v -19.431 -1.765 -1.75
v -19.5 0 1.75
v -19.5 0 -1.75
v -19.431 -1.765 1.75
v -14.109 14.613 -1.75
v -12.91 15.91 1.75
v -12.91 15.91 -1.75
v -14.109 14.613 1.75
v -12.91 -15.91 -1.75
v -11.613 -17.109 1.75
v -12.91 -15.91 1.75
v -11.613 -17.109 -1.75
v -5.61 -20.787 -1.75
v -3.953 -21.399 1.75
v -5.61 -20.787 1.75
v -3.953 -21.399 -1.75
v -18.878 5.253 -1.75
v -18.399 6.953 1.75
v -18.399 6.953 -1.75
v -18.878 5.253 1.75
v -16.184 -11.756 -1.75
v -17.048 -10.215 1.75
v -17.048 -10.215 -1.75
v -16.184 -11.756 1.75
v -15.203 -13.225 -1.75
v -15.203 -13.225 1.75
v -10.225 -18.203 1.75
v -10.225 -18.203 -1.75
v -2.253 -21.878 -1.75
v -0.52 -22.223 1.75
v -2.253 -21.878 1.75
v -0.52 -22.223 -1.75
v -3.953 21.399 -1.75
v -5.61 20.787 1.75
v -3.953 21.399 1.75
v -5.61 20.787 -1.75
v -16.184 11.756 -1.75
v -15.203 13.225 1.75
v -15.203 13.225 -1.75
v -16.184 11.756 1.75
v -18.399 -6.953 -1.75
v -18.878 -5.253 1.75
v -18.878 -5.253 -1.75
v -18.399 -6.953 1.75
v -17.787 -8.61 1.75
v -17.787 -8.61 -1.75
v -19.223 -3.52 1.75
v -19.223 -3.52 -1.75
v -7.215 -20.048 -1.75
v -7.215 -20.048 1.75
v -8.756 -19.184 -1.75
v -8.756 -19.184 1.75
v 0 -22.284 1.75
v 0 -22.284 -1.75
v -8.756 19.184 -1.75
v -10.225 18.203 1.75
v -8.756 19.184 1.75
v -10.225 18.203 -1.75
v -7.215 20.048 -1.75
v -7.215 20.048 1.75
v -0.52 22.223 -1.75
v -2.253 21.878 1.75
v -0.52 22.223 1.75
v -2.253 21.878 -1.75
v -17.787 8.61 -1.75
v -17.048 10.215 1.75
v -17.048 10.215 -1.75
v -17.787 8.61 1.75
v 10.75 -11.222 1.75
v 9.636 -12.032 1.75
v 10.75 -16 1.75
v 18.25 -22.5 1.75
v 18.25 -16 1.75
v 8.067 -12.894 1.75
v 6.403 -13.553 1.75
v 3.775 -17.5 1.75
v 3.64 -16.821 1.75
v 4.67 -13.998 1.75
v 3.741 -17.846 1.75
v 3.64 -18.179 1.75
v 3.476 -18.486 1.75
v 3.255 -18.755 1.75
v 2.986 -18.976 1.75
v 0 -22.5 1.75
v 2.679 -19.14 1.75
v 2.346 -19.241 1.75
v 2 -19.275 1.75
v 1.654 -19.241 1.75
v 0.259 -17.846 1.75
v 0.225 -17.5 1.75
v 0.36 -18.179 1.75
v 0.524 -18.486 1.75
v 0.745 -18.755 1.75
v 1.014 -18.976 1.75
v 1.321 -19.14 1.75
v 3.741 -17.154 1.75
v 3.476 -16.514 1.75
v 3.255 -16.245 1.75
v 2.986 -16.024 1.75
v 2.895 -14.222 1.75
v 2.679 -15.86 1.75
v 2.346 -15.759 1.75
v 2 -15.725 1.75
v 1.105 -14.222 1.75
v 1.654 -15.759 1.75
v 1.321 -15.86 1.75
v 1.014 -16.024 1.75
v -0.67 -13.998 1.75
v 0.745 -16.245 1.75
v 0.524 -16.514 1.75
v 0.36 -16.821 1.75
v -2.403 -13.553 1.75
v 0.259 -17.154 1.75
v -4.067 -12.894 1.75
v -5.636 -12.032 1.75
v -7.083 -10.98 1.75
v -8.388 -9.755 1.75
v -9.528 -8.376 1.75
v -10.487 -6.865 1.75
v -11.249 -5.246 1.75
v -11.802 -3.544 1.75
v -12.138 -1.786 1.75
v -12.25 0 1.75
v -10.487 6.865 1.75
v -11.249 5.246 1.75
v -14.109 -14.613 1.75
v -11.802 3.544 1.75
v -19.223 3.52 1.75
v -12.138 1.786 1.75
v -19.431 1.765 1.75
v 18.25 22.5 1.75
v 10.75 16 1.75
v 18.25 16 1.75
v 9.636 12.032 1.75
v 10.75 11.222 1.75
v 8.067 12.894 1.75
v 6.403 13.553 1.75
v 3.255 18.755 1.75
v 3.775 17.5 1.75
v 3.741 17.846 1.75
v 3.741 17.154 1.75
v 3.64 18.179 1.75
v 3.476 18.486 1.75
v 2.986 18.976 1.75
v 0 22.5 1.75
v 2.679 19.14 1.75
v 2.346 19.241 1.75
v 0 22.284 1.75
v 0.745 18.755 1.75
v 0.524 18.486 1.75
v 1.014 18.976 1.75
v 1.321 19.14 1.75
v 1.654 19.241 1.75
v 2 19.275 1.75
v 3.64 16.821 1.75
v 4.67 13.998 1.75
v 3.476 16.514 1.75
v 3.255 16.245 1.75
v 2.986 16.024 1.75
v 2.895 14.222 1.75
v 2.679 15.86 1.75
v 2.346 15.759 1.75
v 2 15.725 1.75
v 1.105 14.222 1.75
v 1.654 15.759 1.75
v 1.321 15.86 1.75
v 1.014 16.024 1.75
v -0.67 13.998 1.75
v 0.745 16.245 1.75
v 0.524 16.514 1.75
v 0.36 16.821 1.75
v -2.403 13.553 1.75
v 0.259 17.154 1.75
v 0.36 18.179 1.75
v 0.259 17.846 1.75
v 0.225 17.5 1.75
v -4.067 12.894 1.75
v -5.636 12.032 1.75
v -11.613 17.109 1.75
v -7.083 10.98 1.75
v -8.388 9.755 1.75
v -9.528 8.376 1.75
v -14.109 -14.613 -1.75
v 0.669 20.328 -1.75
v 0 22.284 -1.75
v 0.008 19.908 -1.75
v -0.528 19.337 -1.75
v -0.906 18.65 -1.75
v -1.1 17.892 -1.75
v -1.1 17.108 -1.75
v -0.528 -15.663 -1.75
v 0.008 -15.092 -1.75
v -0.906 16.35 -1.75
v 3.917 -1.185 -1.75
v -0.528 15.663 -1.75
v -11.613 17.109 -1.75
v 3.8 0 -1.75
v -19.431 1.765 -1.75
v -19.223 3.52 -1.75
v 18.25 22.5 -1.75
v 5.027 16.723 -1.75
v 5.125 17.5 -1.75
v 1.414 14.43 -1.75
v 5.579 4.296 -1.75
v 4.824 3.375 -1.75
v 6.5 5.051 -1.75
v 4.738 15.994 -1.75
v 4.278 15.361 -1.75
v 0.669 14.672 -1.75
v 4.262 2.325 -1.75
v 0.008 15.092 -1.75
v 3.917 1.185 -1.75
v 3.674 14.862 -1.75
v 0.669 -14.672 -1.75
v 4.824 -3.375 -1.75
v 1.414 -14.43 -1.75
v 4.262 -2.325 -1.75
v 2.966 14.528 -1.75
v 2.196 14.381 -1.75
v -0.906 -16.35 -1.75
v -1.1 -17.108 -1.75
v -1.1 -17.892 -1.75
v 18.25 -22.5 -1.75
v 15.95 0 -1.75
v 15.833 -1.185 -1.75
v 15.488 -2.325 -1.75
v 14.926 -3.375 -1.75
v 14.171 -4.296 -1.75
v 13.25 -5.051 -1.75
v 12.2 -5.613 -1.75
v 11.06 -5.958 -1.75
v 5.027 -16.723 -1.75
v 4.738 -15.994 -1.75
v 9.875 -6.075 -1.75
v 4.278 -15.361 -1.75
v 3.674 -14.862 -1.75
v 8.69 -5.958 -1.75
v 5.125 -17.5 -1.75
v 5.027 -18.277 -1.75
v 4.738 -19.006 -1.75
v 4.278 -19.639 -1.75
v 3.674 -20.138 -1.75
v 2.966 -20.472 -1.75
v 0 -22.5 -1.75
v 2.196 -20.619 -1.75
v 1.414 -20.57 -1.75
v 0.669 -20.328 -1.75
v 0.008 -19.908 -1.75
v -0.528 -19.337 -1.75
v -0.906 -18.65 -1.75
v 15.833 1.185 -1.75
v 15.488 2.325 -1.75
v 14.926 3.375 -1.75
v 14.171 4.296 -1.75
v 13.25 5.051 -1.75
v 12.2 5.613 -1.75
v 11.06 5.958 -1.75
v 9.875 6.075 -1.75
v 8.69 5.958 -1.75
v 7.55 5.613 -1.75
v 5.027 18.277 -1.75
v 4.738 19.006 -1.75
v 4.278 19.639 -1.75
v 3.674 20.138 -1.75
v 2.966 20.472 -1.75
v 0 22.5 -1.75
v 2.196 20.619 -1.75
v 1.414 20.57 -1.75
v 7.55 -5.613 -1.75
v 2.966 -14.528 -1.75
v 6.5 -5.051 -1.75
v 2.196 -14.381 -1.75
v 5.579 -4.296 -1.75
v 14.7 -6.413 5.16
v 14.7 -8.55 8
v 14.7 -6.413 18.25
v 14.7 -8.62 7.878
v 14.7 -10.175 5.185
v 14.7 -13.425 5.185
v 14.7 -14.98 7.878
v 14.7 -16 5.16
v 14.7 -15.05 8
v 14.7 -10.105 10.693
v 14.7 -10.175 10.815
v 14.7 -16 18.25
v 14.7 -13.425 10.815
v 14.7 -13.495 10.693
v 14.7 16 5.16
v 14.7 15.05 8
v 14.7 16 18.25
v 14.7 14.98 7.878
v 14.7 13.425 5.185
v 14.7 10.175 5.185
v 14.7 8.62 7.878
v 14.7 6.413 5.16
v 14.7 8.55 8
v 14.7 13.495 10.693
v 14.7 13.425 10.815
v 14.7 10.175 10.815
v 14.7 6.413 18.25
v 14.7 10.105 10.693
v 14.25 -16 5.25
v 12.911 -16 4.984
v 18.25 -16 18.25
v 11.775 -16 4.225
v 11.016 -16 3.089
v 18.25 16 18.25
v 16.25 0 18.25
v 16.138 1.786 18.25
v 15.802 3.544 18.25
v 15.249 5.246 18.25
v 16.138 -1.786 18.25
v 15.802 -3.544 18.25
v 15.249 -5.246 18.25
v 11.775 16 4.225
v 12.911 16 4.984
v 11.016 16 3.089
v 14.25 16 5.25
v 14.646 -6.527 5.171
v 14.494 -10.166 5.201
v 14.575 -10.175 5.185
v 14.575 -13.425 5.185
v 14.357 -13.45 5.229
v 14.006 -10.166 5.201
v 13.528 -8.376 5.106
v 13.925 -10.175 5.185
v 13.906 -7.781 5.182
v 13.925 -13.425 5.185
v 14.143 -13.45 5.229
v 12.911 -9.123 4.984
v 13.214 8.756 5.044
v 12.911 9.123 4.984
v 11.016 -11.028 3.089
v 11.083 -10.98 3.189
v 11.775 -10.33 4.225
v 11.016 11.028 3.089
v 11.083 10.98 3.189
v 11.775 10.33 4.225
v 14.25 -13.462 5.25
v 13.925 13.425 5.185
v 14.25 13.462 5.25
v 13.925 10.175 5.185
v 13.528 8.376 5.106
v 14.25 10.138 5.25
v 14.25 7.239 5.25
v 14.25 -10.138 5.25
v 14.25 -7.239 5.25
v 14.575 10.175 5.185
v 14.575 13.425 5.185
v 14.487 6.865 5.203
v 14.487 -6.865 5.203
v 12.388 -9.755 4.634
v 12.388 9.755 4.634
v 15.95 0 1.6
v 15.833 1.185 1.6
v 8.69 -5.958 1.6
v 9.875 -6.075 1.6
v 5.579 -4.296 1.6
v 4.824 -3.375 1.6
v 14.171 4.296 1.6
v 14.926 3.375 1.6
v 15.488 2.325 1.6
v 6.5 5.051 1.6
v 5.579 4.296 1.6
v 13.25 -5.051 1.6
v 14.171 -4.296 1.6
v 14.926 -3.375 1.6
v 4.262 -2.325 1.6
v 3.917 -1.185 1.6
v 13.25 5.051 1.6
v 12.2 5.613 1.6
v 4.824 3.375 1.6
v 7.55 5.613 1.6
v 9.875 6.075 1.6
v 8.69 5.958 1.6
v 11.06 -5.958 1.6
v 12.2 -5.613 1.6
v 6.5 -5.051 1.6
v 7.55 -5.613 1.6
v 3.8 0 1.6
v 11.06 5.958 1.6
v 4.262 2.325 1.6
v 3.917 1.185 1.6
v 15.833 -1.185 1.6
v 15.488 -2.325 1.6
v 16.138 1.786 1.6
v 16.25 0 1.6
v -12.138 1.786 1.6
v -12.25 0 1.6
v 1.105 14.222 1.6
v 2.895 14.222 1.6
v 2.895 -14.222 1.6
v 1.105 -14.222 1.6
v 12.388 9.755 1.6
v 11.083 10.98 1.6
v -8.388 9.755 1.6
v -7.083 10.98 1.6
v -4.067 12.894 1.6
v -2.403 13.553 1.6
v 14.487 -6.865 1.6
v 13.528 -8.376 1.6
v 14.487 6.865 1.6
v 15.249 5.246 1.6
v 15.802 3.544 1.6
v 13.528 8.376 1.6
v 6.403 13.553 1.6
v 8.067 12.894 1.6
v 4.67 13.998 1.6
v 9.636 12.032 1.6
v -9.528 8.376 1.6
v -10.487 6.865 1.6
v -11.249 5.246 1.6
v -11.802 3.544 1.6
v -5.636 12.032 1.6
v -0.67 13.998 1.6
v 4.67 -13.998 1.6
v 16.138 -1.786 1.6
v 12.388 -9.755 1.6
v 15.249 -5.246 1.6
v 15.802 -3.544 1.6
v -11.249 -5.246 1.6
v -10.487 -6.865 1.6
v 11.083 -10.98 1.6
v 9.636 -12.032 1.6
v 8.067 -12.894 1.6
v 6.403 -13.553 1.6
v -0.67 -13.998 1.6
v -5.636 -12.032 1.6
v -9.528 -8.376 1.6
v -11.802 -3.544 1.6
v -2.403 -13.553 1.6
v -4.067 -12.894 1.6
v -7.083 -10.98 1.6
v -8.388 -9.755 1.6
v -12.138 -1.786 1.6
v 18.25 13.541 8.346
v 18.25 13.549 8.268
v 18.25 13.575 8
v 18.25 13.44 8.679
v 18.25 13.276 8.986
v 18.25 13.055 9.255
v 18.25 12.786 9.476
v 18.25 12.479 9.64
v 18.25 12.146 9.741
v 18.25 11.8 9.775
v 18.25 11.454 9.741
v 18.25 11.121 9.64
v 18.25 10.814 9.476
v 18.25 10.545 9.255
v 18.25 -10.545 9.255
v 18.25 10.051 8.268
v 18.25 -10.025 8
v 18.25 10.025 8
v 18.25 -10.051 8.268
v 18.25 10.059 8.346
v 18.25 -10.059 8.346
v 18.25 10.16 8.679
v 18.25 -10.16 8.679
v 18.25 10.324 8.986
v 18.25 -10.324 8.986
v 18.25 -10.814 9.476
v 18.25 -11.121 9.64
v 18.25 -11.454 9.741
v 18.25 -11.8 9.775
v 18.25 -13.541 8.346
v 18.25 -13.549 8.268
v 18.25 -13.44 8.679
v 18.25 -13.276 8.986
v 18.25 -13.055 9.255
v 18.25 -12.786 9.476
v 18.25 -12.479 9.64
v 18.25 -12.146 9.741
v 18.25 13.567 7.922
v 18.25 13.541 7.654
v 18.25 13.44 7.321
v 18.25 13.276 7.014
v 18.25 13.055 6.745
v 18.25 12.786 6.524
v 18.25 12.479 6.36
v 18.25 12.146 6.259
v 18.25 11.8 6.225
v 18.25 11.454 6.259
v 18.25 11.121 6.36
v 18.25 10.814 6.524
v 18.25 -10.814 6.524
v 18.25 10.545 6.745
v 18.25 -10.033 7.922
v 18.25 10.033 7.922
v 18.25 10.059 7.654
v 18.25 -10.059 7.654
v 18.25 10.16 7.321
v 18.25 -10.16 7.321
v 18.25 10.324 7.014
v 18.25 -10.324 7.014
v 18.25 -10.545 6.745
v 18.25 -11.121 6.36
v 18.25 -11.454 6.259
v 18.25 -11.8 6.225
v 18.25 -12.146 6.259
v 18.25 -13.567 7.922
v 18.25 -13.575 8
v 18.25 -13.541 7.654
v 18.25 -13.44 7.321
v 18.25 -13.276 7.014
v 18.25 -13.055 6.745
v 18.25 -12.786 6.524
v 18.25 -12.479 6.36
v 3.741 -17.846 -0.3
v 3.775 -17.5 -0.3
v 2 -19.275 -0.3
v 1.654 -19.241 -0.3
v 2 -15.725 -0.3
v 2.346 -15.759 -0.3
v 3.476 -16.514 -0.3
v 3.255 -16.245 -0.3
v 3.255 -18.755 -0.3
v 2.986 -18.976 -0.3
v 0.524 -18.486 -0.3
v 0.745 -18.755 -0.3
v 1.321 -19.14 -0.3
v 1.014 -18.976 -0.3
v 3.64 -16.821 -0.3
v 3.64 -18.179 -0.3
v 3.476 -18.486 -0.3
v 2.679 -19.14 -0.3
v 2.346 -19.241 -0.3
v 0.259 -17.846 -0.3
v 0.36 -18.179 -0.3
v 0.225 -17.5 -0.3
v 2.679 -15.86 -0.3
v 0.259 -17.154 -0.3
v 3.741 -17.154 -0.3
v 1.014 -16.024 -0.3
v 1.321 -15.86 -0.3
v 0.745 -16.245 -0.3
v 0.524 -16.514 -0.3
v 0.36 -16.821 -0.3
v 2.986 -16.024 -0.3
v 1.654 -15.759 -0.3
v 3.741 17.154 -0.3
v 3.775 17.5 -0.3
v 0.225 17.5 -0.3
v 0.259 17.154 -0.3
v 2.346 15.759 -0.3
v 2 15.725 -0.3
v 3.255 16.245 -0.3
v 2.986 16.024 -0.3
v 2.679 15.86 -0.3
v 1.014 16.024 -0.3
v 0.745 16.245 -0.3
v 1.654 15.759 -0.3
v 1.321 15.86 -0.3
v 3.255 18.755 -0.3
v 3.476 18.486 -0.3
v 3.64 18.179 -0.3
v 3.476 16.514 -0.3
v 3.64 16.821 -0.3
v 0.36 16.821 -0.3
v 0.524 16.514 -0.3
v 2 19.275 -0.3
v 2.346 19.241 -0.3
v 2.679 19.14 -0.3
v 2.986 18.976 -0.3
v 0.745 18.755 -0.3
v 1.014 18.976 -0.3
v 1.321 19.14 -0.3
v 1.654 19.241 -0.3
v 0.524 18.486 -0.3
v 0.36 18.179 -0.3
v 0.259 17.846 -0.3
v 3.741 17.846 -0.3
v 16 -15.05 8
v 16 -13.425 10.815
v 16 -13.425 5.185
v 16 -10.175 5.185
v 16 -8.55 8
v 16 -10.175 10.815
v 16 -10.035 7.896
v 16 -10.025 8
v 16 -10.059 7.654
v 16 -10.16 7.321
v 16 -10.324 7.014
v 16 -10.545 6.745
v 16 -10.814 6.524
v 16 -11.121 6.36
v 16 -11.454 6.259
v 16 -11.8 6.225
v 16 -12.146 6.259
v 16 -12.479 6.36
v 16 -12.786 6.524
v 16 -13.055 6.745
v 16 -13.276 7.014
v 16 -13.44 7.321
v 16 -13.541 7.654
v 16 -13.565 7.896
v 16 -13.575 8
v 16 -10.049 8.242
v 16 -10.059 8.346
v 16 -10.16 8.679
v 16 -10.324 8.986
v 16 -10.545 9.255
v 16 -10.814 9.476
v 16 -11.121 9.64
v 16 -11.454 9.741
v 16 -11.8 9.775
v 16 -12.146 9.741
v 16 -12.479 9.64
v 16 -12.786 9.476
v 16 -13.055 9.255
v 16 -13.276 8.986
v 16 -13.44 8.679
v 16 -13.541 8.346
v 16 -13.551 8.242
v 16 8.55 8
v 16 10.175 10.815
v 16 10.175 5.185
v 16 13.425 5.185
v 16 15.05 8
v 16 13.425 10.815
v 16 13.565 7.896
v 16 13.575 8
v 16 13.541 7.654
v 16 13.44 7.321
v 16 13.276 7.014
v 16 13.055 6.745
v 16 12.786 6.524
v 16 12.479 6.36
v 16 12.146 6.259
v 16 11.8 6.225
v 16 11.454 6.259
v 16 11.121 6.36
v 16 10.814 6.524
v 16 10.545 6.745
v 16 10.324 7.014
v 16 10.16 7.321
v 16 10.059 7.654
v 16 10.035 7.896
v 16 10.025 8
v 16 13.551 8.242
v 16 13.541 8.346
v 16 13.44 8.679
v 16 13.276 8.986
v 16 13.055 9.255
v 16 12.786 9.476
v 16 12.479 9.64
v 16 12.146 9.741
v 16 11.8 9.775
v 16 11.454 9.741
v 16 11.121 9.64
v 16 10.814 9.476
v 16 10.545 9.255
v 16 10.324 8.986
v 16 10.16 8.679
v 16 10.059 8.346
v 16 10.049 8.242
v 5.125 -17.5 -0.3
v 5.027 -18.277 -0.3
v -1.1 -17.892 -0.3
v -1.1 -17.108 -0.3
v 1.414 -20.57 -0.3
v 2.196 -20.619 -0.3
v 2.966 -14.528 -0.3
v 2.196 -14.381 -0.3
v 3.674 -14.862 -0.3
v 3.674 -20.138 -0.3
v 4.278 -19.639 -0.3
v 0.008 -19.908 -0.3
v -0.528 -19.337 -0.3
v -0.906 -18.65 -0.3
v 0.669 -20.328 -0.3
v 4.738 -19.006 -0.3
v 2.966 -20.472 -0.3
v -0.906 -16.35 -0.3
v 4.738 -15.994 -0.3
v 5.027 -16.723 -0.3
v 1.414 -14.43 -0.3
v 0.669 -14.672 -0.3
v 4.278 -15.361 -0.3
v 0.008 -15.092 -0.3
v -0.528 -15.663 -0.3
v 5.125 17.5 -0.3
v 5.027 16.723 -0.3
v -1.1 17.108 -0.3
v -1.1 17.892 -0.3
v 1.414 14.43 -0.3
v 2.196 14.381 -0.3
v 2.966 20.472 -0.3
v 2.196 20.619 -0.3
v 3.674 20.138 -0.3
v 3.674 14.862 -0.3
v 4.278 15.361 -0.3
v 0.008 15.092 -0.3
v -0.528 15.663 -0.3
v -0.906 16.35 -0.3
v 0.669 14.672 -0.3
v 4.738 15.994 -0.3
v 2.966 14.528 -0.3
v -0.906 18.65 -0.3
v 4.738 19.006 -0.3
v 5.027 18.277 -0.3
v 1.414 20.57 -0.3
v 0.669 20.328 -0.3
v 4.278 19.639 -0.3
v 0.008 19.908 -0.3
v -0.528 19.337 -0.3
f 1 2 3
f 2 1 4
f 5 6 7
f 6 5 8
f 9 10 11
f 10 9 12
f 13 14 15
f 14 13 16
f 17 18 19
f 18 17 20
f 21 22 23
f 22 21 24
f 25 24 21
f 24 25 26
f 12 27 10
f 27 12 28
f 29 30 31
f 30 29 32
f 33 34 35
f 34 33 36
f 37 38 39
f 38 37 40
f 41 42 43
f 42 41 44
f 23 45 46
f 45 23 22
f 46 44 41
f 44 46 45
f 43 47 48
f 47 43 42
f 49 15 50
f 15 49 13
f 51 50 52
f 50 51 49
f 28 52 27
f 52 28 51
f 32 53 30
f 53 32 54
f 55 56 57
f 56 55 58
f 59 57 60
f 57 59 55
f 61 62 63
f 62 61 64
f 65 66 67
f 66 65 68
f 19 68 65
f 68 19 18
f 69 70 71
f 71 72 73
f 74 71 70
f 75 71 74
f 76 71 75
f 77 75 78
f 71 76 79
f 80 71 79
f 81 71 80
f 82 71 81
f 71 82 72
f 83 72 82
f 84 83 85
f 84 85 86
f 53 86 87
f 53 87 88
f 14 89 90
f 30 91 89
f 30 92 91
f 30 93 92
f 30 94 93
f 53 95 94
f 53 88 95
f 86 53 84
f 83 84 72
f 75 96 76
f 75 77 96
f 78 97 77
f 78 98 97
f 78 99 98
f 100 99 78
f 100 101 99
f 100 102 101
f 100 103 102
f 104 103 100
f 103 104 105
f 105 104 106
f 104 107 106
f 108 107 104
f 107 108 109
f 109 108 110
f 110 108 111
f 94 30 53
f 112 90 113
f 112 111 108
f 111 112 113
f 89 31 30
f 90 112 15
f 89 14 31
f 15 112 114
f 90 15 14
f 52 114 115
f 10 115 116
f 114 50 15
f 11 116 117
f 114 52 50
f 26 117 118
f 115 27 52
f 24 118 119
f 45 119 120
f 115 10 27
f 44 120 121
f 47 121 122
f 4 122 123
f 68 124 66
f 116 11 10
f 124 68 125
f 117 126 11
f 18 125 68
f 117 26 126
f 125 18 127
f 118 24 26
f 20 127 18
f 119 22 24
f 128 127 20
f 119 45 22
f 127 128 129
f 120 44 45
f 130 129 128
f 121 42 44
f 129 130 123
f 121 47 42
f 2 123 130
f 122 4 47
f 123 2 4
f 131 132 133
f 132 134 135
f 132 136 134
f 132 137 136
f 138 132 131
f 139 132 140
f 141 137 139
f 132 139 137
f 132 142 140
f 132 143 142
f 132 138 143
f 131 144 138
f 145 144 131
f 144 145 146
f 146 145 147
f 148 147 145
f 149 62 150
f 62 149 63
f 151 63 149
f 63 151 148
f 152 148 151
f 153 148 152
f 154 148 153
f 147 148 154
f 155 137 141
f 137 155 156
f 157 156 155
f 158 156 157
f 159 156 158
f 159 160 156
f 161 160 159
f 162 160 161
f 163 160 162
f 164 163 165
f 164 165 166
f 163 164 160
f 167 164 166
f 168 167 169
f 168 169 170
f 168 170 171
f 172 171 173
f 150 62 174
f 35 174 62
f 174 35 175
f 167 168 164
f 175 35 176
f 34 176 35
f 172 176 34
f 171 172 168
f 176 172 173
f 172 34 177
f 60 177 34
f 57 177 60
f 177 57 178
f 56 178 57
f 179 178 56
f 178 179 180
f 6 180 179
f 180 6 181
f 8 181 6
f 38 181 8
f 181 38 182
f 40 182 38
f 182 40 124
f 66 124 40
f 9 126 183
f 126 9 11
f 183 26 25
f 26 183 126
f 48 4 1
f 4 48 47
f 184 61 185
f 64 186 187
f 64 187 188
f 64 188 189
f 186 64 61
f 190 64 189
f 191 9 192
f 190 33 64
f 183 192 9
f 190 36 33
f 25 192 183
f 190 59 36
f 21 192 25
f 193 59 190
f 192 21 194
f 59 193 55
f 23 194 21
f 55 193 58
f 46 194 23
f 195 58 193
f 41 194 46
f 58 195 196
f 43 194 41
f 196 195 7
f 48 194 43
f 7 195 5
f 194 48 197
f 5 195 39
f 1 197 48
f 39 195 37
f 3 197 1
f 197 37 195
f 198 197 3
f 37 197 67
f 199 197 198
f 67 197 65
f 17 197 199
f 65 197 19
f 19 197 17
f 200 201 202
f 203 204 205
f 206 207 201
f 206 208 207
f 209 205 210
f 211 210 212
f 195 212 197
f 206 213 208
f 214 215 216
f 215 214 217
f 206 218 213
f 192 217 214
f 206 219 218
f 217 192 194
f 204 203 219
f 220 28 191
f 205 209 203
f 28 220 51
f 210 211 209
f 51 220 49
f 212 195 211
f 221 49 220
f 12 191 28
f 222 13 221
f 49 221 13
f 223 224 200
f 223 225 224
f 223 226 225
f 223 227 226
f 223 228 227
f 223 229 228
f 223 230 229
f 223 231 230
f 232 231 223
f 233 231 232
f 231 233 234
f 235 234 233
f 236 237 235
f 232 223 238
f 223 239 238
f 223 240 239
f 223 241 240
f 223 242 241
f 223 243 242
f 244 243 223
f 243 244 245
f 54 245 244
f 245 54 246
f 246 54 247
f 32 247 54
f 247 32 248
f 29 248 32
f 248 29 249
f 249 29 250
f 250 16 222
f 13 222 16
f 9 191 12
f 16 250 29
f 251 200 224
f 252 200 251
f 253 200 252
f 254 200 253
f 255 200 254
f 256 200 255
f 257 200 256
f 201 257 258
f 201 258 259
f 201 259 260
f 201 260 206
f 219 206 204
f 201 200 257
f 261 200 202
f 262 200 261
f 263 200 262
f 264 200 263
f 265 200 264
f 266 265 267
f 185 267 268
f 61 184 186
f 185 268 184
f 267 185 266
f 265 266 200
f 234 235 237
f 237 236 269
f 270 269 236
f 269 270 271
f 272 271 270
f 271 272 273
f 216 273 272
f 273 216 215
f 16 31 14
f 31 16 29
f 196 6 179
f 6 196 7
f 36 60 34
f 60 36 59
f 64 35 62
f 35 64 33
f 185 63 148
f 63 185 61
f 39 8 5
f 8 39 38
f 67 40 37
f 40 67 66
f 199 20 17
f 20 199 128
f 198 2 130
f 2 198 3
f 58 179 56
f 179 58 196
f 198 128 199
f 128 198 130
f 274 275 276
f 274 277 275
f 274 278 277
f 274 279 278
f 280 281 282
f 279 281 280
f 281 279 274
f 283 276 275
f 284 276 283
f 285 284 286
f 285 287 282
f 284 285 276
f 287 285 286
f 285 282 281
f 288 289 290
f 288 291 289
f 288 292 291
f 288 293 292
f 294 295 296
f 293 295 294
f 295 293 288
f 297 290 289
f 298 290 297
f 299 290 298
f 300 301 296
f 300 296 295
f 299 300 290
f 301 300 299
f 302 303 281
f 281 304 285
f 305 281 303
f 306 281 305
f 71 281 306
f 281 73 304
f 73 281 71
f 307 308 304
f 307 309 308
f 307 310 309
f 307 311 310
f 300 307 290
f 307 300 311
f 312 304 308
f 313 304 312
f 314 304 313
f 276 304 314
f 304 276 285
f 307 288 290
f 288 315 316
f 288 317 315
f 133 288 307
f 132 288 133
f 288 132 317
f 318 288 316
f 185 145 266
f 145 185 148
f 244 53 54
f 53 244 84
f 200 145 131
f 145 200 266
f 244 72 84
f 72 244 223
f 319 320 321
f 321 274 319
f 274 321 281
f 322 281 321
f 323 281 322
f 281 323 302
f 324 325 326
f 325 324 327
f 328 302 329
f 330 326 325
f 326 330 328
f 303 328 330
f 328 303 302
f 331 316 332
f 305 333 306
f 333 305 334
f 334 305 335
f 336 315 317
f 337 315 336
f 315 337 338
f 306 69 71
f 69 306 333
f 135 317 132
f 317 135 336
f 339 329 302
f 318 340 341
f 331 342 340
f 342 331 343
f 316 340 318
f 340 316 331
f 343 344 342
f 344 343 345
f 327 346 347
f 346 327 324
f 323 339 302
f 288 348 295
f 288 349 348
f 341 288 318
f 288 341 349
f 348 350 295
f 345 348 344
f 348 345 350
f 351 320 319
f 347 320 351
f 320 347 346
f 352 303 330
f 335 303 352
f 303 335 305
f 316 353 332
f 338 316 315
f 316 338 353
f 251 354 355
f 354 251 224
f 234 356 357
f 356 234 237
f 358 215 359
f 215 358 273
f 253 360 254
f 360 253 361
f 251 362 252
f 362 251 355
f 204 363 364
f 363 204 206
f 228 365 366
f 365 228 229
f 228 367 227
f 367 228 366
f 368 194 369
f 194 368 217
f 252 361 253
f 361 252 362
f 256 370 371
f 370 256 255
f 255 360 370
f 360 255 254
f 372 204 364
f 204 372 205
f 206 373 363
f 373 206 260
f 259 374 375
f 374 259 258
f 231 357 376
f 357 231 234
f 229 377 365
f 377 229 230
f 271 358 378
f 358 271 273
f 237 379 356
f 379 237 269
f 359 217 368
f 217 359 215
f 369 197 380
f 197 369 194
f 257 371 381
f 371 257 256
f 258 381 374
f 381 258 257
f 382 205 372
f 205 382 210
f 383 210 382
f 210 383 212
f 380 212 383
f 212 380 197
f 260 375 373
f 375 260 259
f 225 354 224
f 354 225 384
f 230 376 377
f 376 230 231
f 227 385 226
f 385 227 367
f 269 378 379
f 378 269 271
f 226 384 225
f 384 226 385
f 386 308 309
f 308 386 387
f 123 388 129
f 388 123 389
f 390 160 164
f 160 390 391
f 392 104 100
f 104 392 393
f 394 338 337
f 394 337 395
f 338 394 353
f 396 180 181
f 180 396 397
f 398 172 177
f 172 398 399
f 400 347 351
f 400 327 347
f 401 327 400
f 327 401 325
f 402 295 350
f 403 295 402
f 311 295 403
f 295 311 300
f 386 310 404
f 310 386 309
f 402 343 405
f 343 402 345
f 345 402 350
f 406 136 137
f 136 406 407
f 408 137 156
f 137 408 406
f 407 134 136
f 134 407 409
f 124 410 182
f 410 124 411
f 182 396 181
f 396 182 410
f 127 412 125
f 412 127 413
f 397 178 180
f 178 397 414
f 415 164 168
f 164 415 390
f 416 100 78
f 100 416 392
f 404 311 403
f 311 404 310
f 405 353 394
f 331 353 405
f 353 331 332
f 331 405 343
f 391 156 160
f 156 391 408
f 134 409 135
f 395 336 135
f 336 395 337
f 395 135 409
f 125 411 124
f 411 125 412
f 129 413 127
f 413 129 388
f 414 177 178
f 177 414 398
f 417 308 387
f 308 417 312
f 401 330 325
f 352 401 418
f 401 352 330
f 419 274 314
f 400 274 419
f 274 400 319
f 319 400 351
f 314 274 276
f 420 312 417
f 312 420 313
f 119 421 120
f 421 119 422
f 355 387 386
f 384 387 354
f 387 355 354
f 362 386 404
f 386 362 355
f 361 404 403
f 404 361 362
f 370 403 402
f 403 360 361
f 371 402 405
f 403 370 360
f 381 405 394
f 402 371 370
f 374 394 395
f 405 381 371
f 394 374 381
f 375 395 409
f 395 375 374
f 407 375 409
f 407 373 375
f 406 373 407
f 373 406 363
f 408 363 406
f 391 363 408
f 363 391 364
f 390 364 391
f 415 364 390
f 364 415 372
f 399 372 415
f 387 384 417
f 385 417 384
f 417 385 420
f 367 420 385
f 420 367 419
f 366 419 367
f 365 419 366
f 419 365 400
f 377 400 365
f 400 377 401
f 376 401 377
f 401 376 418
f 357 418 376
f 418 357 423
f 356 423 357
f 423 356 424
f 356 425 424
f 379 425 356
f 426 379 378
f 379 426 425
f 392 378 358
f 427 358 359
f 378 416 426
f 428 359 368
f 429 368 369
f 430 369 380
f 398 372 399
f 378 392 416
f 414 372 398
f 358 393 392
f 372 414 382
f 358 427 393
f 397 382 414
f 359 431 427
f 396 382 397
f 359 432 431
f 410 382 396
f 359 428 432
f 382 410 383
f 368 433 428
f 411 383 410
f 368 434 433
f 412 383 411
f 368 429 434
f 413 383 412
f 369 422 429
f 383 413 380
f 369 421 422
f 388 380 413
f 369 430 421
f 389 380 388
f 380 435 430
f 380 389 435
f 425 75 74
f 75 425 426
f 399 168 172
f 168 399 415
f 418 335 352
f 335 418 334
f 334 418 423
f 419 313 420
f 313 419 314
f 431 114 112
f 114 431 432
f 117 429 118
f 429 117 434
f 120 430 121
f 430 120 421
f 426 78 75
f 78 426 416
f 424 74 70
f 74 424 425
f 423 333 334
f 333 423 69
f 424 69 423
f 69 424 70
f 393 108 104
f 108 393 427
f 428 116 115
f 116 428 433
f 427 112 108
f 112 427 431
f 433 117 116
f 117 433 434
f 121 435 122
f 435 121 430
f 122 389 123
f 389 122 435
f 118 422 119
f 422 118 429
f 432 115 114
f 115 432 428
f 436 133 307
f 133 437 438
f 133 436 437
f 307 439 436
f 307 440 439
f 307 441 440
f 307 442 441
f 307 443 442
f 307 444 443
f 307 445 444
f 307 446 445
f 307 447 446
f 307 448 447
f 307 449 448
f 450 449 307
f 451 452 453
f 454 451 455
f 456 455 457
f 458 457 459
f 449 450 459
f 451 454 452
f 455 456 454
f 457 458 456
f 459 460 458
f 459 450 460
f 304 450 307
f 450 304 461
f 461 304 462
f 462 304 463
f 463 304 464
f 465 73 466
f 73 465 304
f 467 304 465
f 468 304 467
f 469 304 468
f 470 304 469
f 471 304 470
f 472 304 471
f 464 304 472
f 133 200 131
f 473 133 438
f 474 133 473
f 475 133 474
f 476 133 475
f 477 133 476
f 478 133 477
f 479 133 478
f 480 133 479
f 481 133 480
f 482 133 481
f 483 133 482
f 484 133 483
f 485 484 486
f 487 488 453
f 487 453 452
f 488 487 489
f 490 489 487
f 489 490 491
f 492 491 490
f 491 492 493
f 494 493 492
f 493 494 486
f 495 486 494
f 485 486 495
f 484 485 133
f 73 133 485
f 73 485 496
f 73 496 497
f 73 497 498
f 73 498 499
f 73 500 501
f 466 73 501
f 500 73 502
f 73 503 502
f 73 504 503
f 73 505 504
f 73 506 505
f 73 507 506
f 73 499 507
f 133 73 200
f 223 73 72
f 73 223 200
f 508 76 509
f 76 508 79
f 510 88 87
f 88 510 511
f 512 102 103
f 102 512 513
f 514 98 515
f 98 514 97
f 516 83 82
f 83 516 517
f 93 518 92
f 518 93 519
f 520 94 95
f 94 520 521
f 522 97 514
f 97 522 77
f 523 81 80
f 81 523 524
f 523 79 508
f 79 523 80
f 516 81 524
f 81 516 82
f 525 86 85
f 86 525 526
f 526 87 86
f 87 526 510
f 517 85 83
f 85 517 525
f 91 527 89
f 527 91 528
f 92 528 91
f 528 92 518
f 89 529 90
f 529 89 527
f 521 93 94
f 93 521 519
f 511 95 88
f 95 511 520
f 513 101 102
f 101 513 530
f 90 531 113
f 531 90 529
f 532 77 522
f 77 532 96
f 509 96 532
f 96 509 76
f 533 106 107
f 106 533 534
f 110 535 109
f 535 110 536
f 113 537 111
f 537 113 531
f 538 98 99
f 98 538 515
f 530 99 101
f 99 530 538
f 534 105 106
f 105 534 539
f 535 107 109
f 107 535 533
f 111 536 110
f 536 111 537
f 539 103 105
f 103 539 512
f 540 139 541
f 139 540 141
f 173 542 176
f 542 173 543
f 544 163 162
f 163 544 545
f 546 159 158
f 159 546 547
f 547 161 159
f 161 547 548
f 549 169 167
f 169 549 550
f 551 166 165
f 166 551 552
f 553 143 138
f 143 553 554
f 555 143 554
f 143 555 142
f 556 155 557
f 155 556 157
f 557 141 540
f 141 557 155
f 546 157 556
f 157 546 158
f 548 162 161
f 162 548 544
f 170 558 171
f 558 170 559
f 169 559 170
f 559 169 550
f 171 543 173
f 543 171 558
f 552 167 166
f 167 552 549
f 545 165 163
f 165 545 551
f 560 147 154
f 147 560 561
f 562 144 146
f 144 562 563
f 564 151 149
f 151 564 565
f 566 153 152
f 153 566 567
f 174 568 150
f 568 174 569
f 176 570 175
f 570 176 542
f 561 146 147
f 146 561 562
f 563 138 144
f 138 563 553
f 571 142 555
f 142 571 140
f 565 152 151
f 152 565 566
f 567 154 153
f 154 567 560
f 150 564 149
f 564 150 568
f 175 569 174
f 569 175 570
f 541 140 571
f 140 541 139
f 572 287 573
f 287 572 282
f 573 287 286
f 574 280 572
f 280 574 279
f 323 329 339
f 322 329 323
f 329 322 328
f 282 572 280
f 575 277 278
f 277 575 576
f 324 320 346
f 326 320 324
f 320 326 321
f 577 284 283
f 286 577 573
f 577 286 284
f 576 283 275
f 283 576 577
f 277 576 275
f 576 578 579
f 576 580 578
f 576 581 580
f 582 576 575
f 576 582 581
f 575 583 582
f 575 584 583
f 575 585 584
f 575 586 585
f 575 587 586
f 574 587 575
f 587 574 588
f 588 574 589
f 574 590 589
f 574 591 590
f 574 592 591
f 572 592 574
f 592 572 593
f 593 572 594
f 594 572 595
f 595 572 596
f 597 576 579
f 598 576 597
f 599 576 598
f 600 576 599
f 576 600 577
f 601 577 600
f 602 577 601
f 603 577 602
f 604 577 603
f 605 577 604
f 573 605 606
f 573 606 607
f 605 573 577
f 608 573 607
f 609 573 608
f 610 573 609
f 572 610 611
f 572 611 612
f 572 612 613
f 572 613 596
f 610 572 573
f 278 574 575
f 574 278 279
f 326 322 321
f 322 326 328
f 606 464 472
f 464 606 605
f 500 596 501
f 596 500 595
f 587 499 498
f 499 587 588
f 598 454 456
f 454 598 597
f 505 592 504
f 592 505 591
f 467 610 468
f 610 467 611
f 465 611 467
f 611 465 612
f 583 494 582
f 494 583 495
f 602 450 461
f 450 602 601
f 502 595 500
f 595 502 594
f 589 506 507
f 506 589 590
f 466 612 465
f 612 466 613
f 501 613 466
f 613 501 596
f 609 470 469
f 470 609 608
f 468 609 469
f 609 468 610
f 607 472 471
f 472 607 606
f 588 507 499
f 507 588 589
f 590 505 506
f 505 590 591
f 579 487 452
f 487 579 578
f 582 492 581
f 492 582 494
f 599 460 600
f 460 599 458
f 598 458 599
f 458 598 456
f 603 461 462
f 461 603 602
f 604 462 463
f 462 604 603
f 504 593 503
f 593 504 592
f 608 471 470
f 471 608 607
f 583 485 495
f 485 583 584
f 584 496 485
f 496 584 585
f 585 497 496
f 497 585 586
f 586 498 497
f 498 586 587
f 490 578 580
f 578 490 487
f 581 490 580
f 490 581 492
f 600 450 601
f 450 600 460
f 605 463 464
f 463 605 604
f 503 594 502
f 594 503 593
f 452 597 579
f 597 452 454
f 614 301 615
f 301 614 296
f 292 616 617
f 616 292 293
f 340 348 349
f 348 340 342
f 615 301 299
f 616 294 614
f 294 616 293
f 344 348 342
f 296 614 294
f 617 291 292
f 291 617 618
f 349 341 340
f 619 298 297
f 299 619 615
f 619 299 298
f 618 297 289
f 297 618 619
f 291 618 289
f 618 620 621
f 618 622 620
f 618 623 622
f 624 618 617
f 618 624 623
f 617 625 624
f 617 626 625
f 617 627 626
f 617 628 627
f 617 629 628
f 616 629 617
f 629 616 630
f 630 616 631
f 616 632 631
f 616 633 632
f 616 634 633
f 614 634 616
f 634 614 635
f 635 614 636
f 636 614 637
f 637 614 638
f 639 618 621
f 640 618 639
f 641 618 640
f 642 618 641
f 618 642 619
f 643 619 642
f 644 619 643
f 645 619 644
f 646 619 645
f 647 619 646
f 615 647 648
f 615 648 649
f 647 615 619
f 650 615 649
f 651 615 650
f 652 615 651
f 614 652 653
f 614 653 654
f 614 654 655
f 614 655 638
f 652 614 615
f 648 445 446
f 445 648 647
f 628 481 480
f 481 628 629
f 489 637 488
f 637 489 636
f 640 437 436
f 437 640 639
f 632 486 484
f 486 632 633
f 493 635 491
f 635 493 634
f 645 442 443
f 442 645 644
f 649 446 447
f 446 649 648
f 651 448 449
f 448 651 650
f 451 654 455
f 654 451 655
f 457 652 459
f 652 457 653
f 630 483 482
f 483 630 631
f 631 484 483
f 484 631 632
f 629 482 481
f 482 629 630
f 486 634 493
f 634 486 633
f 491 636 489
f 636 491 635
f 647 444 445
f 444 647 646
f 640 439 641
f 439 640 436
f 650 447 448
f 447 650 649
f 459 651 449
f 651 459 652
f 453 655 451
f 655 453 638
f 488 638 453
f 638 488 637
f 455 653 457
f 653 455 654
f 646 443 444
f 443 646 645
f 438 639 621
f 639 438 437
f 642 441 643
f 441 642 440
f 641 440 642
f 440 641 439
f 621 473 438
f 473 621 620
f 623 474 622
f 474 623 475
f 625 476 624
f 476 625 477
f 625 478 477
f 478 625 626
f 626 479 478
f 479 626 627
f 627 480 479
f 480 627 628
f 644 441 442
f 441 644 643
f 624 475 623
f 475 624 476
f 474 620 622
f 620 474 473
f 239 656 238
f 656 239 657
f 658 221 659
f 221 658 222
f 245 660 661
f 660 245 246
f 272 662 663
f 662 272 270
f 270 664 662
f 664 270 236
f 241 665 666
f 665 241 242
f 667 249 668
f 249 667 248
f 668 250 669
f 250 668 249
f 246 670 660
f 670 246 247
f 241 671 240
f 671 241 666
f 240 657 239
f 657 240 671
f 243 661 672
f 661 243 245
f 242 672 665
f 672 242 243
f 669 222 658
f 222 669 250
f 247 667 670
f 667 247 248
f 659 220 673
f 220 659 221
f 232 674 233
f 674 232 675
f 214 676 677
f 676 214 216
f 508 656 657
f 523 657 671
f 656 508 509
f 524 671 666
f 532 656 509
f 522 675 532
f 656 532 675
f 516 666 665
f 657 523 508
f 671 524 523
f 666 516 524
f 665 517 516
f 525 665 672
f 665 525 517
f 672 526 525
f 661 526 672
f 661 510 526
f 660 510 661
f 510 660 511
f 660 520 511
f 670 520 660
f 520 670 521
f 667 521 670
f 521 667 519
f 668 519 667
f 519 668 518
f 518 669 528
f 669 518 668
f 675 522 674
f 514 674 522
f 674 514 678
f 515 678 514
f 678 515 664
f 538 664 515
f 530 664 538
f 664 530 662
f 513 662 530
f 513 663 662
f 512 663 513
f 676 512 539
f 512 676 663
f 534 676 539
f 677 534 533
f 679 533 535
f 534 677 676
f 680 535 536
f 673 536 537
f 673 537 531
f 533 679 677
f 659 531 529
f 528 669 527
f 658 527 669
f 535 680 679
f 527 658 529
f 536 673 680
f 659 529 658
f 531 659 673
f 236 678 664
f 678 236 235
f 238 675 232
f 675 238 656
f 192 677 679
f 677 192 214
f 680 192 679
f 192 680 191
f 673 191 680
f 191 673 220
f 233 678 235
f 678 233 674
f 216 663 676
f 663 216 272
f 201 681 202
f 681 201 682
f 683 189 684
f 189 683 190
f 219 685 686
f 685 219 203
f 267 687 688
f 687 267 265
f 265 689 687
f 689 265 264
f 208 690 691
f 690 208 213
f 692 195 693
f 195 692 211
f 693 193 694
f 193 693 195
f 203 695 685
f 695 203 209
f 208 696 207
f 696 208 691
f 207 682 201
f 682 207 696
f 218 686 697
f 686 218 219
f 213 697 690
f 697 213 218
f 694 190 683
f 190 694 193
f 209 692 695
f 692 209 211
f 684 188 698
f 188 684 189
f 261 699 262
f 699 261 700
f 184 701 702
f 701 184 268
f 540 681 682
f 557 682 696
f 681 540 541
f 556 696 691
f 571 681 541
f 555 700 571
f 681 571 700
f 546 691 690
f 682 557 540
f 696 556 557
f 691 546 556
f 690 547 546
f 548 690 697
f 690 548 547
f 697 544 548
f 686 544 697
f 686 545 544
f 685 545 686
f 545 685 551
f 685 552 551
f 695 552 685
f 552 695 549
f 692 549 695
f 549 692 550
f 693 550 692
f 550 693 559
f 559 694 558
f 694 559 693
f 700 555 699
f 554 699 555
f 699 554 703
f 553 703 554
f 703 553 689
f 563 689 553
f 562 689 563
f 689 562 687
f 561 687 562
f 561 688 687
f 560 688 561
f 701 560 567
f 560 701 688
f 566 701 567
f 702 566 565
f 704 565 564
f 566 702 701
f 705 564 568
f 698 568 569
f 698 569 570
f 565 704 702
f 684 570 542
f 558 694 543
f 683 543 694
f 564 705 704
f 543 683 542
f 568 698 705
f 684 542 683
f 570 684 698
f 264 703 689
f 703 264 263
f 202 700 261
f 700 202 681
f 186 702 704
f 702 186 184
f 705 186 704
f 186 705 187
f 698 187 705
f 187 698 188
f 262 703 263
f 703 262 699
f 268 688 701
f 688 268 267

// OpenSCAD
// Original :http://www.thingiverse.com/thing:423357
// Bracket for  28BYJ-48 stepper motor
// 28BYJ-48 model from RGriffoGoes www.thingiverse.com/thing:204734
// added details by J.Beale 21 July 2014
// Bracket by J.Beale 9 Aug 2014

slop = 0.25;  // printer tolerance

// =========================================================
// stepper motor body model

MBH = 18.8;   // motor body height
MBD = 28.25+slop;  // motor body OD
SBD = 9.1+slop;    // shaft boss OD
SBH = 1.45;   // shaft boss height above motor body
SBO = 7.875;  // offset of shaft/boss center from motor center
//SHD = 4.93+slop*2;   // motor shaft OD+ countersink for boss
SHD = 11.9+slop;   // motor shaft OD (larger clearance hole)
SHDF = 3.0;   // motor shaft diameter, across flats
SHHF = 6.0;   // motor shaft flats height, or depth in from end
SHHF = 0.0;   // assume round shaft for purposes of bracket
SHH = 9.75;   // height of shaft above motor body 

MBFH = 0.7;   // height of body edge flange protruding above surface
MBFW = 1.0+slop;   // width of edge flange
MBFNW = 8;    // width of notch in edge flange
MBFNW2 = 17.8;  // width of edge flange notch above wiring box

MHCC = 35.0;  // mounting hole center-to-center was 35
MTH  = 0.8;   // mounting tab thickness
MTW  = 0.0;   // mounting tab width
// MTHID = 4.0;  // mounting tab hole inner diameter
MTHID = 3.0;  // mounting tab hole inner diameter
WBH  = 16.7;  // plastic wiring box height
WBW  = 14.6+slop;  // plastic wiring box width
WBD  = 31.3+slop;  // body diameter to outer surface of wiring box

WRD = 1.0;     // diameter of electrical wires
WRL = 30;      // length of electrical wires
WRO = 2.2;		// offset of wires below top motor surface
// =========================================================
// right-angle bracket for motor

MSOD = 6.0 + slop;  // M3 mounting screw head diameter // WAS 5.9
MSTH = 1.5;  // M3 screw head thickness (for countersink)
//MSTH = 0; // set to zero for no screwhead countersink
MSSD = 3.3 + slop;  // M3 screw diameter clearance hole // WAS 3.1
Bthick = 3.5;  // thickness of bracket
Bdia = (MHCC+10);  // diameter of bracket face
M3nutDia = 6.5;

// =========================================================
fn = 80;
eps = 0.05;   // small number to avoid coincident faces

motorOffset = 3;


module StepMotor28BYJ()
{
  difference(){
    union(){
	   color("gray") translate([0,0,-(MBH+MBFH)/2])
	  difference() {  // flange at top rim
        // cylinder(h = MBFH+eps, r = MBD/2, center = true, $fn = 50);
         //cylinder(h = MBFH+2*eps, r = (MBD-MBFW)/2, center = true, $fn = 32);
			//cube([MBFNW,MHCC,MBFH*2],center=true); // notches in rim
			//cube([MBD+2*MBFW,SBD,MBFH*2],center=true);
		   //translate([-MBD/2,0,0]) cube([MBD,MBFNW2,MBFH*2],center=true);
        }
		color("gray") // motor body
			cylinder(h = MBH, r = MBD/2, center = true, $fn = 50);
		color("gray") translate([SBO,0,-SBH])	// shaft boss
			cylinder(h = MBH, r = SBD/2, center = true, $fn = 32);

		translate([SBO,0,-SHH])	// motor shaft
        difference() {
			color("gold") cylinder(h = MBH, r = SHD/2, center = true, $fn = 32);
				// shaft flats
		   color("red") translate([(SHD+SHDF)/2,0,-(eps+MBH-SHHF)/2]) 
				cube([SHD,SHD,SHHF], center = true);
		   color("red") translate([-(SHD+SHDF)/2,0,-(eps+MBH-SHHF)/2]) 
				cube([SHD,SHD,SHHF], center = true);
        }


		//color("Silver") translate([0,0,-(MBH-MTH-eps)/2]) // mounting tab 
		//	cube([MTW,MHCC,MTH], center = true);				
		//color("Silver") translate([0,MHCC/2,-(MBH-MTH)/2]) // mt.tab rounded end
		//	cylinder(h = MTH, r = MTW/2, center = true, $fn = 32);
		//color("Silver") translate([0,-MHCC/2,-(MBH-MTH)/2]) // mt.tab rounded end
		//	cylinder(h = MTH, r = MTW/2, center = true, $fn = 32);


		//color("blue") translate([-(WBD-MBD),0,eps-(MBH-WBH)/2]) // plastic wire box
		//	cube([MBD,WBW,WBH], center = true);
	    //color("blue") translate([-2,0,0])	
		//	cube([24.5,16,15], center = true);
		}

				// mounting holes in tabs on side
		color("red") translate([0,MHCC/2,-MBH/2])	
				cylinder(h = 2, r = MTHID/2, center = true, $fn = 32);
		color("red") translate([0,-MHCC/2,-MBH/2])	
				cylinder(h = 2, r = MTHID/2, center = true, $fn = 32);
		}
}



module MOT() {
 translate([motorOffset,0,-MBH/2 ]) 
 rotate([180,0,0]) StepMotor28BYJ();  // motor body (without wires)
}


module bracket() {
difference() {
 union() {
  translate([motorOffset,0,-Bthick/2]) cylinder(h=Bthick, r=Bdia/2, $fn=fn);  // round face
     
  echo(Bdia);
  translate([-eps + MBD/2 + 0.5,-32/2,-20+Bthick/2]) 
  		cube([5.5+eps,32,20]); // flange
     
     
  translate([-0,-Bdia/2,-Bthick/2]) 
	cube([Bdia,Bdia,Bthick]); // square edge joining round face to flange
  translate([MBD/2,32/2,-Bthick/2]) rotate([90,0,0]) 
  	cylinder(r=Bthick,h=32,$fn=16); // round fillet at flange
 }
 
 union() {
   translate([4+MBD/2,-MBD,-MBD]) cube([MBD*2,MBD*2,MBD*2]);
   translate([motorOffset - 1,MHCC/2,-10])	// motor mounting bolt
   			cylinder(h = 30, r = MSSD/2, center = true, $fn = 32);
   translate([motorOffset - 1,-MHCC/2,-10])	// motor mounting bole
				cylinder(h = 30, r = MSSD/2, center = true, $fn = 32);



   translate([1.0,11.8,-8]) rotate([0,90,0]) 	// flange mounting bolt
     rotate([0, 0, 30])
				cylinder(h = 30, d = M3nutDia, center = true, $fn = 6);   
   translate([10,11.8,-8]) rotate([0,90,0]) 	// flange mounting bolt
				//cylinder(h = 30, r = MSOD/2, center = true, $fn = 6);                
				cylinder(h = 30, r = MSSD/2, center = true, $fn = 32);
     
   translate([1.0,-11.8,-8]) rotate([0,90,0]) 	// flange mounting bolt
     rotate([0, 0, 30])     
				cylinder(h = 30, d = M3nutDia, center = true, $fn = 6);        
   translate([10,-11.8,-8]) rotate([0,90,0]) 	// flange mounting bolt
				cylinder(h = 30, r = MSSD/2, center = true, $fn = 32);

   color("white") translate([motorOffset - 1, MHCC/2,((Bthick/2) - MSTH + eps)]) 
	 cylinder(r=MSOD/2, h=MSTH, $fn=25); // motor screw countersink
   color("white") translate([motorOffset - 1,-MHCC/2,((Bthick/2) - MSTH + eps)])  
	 cylinder(r=MSOD/2, h=MSTH, $fn=25); // motor screw countersink

   translate([-1,0,-1.6]) MOT(); // body of motor
   //translate([0,0,-10]) cube([50,50,50]); // DEBUG cutaway view
 }
}
} // end module()

rotate([180,0,0]) bracket();  // show the motor bracket

//bracket();
//StepMotor28BYJ();
